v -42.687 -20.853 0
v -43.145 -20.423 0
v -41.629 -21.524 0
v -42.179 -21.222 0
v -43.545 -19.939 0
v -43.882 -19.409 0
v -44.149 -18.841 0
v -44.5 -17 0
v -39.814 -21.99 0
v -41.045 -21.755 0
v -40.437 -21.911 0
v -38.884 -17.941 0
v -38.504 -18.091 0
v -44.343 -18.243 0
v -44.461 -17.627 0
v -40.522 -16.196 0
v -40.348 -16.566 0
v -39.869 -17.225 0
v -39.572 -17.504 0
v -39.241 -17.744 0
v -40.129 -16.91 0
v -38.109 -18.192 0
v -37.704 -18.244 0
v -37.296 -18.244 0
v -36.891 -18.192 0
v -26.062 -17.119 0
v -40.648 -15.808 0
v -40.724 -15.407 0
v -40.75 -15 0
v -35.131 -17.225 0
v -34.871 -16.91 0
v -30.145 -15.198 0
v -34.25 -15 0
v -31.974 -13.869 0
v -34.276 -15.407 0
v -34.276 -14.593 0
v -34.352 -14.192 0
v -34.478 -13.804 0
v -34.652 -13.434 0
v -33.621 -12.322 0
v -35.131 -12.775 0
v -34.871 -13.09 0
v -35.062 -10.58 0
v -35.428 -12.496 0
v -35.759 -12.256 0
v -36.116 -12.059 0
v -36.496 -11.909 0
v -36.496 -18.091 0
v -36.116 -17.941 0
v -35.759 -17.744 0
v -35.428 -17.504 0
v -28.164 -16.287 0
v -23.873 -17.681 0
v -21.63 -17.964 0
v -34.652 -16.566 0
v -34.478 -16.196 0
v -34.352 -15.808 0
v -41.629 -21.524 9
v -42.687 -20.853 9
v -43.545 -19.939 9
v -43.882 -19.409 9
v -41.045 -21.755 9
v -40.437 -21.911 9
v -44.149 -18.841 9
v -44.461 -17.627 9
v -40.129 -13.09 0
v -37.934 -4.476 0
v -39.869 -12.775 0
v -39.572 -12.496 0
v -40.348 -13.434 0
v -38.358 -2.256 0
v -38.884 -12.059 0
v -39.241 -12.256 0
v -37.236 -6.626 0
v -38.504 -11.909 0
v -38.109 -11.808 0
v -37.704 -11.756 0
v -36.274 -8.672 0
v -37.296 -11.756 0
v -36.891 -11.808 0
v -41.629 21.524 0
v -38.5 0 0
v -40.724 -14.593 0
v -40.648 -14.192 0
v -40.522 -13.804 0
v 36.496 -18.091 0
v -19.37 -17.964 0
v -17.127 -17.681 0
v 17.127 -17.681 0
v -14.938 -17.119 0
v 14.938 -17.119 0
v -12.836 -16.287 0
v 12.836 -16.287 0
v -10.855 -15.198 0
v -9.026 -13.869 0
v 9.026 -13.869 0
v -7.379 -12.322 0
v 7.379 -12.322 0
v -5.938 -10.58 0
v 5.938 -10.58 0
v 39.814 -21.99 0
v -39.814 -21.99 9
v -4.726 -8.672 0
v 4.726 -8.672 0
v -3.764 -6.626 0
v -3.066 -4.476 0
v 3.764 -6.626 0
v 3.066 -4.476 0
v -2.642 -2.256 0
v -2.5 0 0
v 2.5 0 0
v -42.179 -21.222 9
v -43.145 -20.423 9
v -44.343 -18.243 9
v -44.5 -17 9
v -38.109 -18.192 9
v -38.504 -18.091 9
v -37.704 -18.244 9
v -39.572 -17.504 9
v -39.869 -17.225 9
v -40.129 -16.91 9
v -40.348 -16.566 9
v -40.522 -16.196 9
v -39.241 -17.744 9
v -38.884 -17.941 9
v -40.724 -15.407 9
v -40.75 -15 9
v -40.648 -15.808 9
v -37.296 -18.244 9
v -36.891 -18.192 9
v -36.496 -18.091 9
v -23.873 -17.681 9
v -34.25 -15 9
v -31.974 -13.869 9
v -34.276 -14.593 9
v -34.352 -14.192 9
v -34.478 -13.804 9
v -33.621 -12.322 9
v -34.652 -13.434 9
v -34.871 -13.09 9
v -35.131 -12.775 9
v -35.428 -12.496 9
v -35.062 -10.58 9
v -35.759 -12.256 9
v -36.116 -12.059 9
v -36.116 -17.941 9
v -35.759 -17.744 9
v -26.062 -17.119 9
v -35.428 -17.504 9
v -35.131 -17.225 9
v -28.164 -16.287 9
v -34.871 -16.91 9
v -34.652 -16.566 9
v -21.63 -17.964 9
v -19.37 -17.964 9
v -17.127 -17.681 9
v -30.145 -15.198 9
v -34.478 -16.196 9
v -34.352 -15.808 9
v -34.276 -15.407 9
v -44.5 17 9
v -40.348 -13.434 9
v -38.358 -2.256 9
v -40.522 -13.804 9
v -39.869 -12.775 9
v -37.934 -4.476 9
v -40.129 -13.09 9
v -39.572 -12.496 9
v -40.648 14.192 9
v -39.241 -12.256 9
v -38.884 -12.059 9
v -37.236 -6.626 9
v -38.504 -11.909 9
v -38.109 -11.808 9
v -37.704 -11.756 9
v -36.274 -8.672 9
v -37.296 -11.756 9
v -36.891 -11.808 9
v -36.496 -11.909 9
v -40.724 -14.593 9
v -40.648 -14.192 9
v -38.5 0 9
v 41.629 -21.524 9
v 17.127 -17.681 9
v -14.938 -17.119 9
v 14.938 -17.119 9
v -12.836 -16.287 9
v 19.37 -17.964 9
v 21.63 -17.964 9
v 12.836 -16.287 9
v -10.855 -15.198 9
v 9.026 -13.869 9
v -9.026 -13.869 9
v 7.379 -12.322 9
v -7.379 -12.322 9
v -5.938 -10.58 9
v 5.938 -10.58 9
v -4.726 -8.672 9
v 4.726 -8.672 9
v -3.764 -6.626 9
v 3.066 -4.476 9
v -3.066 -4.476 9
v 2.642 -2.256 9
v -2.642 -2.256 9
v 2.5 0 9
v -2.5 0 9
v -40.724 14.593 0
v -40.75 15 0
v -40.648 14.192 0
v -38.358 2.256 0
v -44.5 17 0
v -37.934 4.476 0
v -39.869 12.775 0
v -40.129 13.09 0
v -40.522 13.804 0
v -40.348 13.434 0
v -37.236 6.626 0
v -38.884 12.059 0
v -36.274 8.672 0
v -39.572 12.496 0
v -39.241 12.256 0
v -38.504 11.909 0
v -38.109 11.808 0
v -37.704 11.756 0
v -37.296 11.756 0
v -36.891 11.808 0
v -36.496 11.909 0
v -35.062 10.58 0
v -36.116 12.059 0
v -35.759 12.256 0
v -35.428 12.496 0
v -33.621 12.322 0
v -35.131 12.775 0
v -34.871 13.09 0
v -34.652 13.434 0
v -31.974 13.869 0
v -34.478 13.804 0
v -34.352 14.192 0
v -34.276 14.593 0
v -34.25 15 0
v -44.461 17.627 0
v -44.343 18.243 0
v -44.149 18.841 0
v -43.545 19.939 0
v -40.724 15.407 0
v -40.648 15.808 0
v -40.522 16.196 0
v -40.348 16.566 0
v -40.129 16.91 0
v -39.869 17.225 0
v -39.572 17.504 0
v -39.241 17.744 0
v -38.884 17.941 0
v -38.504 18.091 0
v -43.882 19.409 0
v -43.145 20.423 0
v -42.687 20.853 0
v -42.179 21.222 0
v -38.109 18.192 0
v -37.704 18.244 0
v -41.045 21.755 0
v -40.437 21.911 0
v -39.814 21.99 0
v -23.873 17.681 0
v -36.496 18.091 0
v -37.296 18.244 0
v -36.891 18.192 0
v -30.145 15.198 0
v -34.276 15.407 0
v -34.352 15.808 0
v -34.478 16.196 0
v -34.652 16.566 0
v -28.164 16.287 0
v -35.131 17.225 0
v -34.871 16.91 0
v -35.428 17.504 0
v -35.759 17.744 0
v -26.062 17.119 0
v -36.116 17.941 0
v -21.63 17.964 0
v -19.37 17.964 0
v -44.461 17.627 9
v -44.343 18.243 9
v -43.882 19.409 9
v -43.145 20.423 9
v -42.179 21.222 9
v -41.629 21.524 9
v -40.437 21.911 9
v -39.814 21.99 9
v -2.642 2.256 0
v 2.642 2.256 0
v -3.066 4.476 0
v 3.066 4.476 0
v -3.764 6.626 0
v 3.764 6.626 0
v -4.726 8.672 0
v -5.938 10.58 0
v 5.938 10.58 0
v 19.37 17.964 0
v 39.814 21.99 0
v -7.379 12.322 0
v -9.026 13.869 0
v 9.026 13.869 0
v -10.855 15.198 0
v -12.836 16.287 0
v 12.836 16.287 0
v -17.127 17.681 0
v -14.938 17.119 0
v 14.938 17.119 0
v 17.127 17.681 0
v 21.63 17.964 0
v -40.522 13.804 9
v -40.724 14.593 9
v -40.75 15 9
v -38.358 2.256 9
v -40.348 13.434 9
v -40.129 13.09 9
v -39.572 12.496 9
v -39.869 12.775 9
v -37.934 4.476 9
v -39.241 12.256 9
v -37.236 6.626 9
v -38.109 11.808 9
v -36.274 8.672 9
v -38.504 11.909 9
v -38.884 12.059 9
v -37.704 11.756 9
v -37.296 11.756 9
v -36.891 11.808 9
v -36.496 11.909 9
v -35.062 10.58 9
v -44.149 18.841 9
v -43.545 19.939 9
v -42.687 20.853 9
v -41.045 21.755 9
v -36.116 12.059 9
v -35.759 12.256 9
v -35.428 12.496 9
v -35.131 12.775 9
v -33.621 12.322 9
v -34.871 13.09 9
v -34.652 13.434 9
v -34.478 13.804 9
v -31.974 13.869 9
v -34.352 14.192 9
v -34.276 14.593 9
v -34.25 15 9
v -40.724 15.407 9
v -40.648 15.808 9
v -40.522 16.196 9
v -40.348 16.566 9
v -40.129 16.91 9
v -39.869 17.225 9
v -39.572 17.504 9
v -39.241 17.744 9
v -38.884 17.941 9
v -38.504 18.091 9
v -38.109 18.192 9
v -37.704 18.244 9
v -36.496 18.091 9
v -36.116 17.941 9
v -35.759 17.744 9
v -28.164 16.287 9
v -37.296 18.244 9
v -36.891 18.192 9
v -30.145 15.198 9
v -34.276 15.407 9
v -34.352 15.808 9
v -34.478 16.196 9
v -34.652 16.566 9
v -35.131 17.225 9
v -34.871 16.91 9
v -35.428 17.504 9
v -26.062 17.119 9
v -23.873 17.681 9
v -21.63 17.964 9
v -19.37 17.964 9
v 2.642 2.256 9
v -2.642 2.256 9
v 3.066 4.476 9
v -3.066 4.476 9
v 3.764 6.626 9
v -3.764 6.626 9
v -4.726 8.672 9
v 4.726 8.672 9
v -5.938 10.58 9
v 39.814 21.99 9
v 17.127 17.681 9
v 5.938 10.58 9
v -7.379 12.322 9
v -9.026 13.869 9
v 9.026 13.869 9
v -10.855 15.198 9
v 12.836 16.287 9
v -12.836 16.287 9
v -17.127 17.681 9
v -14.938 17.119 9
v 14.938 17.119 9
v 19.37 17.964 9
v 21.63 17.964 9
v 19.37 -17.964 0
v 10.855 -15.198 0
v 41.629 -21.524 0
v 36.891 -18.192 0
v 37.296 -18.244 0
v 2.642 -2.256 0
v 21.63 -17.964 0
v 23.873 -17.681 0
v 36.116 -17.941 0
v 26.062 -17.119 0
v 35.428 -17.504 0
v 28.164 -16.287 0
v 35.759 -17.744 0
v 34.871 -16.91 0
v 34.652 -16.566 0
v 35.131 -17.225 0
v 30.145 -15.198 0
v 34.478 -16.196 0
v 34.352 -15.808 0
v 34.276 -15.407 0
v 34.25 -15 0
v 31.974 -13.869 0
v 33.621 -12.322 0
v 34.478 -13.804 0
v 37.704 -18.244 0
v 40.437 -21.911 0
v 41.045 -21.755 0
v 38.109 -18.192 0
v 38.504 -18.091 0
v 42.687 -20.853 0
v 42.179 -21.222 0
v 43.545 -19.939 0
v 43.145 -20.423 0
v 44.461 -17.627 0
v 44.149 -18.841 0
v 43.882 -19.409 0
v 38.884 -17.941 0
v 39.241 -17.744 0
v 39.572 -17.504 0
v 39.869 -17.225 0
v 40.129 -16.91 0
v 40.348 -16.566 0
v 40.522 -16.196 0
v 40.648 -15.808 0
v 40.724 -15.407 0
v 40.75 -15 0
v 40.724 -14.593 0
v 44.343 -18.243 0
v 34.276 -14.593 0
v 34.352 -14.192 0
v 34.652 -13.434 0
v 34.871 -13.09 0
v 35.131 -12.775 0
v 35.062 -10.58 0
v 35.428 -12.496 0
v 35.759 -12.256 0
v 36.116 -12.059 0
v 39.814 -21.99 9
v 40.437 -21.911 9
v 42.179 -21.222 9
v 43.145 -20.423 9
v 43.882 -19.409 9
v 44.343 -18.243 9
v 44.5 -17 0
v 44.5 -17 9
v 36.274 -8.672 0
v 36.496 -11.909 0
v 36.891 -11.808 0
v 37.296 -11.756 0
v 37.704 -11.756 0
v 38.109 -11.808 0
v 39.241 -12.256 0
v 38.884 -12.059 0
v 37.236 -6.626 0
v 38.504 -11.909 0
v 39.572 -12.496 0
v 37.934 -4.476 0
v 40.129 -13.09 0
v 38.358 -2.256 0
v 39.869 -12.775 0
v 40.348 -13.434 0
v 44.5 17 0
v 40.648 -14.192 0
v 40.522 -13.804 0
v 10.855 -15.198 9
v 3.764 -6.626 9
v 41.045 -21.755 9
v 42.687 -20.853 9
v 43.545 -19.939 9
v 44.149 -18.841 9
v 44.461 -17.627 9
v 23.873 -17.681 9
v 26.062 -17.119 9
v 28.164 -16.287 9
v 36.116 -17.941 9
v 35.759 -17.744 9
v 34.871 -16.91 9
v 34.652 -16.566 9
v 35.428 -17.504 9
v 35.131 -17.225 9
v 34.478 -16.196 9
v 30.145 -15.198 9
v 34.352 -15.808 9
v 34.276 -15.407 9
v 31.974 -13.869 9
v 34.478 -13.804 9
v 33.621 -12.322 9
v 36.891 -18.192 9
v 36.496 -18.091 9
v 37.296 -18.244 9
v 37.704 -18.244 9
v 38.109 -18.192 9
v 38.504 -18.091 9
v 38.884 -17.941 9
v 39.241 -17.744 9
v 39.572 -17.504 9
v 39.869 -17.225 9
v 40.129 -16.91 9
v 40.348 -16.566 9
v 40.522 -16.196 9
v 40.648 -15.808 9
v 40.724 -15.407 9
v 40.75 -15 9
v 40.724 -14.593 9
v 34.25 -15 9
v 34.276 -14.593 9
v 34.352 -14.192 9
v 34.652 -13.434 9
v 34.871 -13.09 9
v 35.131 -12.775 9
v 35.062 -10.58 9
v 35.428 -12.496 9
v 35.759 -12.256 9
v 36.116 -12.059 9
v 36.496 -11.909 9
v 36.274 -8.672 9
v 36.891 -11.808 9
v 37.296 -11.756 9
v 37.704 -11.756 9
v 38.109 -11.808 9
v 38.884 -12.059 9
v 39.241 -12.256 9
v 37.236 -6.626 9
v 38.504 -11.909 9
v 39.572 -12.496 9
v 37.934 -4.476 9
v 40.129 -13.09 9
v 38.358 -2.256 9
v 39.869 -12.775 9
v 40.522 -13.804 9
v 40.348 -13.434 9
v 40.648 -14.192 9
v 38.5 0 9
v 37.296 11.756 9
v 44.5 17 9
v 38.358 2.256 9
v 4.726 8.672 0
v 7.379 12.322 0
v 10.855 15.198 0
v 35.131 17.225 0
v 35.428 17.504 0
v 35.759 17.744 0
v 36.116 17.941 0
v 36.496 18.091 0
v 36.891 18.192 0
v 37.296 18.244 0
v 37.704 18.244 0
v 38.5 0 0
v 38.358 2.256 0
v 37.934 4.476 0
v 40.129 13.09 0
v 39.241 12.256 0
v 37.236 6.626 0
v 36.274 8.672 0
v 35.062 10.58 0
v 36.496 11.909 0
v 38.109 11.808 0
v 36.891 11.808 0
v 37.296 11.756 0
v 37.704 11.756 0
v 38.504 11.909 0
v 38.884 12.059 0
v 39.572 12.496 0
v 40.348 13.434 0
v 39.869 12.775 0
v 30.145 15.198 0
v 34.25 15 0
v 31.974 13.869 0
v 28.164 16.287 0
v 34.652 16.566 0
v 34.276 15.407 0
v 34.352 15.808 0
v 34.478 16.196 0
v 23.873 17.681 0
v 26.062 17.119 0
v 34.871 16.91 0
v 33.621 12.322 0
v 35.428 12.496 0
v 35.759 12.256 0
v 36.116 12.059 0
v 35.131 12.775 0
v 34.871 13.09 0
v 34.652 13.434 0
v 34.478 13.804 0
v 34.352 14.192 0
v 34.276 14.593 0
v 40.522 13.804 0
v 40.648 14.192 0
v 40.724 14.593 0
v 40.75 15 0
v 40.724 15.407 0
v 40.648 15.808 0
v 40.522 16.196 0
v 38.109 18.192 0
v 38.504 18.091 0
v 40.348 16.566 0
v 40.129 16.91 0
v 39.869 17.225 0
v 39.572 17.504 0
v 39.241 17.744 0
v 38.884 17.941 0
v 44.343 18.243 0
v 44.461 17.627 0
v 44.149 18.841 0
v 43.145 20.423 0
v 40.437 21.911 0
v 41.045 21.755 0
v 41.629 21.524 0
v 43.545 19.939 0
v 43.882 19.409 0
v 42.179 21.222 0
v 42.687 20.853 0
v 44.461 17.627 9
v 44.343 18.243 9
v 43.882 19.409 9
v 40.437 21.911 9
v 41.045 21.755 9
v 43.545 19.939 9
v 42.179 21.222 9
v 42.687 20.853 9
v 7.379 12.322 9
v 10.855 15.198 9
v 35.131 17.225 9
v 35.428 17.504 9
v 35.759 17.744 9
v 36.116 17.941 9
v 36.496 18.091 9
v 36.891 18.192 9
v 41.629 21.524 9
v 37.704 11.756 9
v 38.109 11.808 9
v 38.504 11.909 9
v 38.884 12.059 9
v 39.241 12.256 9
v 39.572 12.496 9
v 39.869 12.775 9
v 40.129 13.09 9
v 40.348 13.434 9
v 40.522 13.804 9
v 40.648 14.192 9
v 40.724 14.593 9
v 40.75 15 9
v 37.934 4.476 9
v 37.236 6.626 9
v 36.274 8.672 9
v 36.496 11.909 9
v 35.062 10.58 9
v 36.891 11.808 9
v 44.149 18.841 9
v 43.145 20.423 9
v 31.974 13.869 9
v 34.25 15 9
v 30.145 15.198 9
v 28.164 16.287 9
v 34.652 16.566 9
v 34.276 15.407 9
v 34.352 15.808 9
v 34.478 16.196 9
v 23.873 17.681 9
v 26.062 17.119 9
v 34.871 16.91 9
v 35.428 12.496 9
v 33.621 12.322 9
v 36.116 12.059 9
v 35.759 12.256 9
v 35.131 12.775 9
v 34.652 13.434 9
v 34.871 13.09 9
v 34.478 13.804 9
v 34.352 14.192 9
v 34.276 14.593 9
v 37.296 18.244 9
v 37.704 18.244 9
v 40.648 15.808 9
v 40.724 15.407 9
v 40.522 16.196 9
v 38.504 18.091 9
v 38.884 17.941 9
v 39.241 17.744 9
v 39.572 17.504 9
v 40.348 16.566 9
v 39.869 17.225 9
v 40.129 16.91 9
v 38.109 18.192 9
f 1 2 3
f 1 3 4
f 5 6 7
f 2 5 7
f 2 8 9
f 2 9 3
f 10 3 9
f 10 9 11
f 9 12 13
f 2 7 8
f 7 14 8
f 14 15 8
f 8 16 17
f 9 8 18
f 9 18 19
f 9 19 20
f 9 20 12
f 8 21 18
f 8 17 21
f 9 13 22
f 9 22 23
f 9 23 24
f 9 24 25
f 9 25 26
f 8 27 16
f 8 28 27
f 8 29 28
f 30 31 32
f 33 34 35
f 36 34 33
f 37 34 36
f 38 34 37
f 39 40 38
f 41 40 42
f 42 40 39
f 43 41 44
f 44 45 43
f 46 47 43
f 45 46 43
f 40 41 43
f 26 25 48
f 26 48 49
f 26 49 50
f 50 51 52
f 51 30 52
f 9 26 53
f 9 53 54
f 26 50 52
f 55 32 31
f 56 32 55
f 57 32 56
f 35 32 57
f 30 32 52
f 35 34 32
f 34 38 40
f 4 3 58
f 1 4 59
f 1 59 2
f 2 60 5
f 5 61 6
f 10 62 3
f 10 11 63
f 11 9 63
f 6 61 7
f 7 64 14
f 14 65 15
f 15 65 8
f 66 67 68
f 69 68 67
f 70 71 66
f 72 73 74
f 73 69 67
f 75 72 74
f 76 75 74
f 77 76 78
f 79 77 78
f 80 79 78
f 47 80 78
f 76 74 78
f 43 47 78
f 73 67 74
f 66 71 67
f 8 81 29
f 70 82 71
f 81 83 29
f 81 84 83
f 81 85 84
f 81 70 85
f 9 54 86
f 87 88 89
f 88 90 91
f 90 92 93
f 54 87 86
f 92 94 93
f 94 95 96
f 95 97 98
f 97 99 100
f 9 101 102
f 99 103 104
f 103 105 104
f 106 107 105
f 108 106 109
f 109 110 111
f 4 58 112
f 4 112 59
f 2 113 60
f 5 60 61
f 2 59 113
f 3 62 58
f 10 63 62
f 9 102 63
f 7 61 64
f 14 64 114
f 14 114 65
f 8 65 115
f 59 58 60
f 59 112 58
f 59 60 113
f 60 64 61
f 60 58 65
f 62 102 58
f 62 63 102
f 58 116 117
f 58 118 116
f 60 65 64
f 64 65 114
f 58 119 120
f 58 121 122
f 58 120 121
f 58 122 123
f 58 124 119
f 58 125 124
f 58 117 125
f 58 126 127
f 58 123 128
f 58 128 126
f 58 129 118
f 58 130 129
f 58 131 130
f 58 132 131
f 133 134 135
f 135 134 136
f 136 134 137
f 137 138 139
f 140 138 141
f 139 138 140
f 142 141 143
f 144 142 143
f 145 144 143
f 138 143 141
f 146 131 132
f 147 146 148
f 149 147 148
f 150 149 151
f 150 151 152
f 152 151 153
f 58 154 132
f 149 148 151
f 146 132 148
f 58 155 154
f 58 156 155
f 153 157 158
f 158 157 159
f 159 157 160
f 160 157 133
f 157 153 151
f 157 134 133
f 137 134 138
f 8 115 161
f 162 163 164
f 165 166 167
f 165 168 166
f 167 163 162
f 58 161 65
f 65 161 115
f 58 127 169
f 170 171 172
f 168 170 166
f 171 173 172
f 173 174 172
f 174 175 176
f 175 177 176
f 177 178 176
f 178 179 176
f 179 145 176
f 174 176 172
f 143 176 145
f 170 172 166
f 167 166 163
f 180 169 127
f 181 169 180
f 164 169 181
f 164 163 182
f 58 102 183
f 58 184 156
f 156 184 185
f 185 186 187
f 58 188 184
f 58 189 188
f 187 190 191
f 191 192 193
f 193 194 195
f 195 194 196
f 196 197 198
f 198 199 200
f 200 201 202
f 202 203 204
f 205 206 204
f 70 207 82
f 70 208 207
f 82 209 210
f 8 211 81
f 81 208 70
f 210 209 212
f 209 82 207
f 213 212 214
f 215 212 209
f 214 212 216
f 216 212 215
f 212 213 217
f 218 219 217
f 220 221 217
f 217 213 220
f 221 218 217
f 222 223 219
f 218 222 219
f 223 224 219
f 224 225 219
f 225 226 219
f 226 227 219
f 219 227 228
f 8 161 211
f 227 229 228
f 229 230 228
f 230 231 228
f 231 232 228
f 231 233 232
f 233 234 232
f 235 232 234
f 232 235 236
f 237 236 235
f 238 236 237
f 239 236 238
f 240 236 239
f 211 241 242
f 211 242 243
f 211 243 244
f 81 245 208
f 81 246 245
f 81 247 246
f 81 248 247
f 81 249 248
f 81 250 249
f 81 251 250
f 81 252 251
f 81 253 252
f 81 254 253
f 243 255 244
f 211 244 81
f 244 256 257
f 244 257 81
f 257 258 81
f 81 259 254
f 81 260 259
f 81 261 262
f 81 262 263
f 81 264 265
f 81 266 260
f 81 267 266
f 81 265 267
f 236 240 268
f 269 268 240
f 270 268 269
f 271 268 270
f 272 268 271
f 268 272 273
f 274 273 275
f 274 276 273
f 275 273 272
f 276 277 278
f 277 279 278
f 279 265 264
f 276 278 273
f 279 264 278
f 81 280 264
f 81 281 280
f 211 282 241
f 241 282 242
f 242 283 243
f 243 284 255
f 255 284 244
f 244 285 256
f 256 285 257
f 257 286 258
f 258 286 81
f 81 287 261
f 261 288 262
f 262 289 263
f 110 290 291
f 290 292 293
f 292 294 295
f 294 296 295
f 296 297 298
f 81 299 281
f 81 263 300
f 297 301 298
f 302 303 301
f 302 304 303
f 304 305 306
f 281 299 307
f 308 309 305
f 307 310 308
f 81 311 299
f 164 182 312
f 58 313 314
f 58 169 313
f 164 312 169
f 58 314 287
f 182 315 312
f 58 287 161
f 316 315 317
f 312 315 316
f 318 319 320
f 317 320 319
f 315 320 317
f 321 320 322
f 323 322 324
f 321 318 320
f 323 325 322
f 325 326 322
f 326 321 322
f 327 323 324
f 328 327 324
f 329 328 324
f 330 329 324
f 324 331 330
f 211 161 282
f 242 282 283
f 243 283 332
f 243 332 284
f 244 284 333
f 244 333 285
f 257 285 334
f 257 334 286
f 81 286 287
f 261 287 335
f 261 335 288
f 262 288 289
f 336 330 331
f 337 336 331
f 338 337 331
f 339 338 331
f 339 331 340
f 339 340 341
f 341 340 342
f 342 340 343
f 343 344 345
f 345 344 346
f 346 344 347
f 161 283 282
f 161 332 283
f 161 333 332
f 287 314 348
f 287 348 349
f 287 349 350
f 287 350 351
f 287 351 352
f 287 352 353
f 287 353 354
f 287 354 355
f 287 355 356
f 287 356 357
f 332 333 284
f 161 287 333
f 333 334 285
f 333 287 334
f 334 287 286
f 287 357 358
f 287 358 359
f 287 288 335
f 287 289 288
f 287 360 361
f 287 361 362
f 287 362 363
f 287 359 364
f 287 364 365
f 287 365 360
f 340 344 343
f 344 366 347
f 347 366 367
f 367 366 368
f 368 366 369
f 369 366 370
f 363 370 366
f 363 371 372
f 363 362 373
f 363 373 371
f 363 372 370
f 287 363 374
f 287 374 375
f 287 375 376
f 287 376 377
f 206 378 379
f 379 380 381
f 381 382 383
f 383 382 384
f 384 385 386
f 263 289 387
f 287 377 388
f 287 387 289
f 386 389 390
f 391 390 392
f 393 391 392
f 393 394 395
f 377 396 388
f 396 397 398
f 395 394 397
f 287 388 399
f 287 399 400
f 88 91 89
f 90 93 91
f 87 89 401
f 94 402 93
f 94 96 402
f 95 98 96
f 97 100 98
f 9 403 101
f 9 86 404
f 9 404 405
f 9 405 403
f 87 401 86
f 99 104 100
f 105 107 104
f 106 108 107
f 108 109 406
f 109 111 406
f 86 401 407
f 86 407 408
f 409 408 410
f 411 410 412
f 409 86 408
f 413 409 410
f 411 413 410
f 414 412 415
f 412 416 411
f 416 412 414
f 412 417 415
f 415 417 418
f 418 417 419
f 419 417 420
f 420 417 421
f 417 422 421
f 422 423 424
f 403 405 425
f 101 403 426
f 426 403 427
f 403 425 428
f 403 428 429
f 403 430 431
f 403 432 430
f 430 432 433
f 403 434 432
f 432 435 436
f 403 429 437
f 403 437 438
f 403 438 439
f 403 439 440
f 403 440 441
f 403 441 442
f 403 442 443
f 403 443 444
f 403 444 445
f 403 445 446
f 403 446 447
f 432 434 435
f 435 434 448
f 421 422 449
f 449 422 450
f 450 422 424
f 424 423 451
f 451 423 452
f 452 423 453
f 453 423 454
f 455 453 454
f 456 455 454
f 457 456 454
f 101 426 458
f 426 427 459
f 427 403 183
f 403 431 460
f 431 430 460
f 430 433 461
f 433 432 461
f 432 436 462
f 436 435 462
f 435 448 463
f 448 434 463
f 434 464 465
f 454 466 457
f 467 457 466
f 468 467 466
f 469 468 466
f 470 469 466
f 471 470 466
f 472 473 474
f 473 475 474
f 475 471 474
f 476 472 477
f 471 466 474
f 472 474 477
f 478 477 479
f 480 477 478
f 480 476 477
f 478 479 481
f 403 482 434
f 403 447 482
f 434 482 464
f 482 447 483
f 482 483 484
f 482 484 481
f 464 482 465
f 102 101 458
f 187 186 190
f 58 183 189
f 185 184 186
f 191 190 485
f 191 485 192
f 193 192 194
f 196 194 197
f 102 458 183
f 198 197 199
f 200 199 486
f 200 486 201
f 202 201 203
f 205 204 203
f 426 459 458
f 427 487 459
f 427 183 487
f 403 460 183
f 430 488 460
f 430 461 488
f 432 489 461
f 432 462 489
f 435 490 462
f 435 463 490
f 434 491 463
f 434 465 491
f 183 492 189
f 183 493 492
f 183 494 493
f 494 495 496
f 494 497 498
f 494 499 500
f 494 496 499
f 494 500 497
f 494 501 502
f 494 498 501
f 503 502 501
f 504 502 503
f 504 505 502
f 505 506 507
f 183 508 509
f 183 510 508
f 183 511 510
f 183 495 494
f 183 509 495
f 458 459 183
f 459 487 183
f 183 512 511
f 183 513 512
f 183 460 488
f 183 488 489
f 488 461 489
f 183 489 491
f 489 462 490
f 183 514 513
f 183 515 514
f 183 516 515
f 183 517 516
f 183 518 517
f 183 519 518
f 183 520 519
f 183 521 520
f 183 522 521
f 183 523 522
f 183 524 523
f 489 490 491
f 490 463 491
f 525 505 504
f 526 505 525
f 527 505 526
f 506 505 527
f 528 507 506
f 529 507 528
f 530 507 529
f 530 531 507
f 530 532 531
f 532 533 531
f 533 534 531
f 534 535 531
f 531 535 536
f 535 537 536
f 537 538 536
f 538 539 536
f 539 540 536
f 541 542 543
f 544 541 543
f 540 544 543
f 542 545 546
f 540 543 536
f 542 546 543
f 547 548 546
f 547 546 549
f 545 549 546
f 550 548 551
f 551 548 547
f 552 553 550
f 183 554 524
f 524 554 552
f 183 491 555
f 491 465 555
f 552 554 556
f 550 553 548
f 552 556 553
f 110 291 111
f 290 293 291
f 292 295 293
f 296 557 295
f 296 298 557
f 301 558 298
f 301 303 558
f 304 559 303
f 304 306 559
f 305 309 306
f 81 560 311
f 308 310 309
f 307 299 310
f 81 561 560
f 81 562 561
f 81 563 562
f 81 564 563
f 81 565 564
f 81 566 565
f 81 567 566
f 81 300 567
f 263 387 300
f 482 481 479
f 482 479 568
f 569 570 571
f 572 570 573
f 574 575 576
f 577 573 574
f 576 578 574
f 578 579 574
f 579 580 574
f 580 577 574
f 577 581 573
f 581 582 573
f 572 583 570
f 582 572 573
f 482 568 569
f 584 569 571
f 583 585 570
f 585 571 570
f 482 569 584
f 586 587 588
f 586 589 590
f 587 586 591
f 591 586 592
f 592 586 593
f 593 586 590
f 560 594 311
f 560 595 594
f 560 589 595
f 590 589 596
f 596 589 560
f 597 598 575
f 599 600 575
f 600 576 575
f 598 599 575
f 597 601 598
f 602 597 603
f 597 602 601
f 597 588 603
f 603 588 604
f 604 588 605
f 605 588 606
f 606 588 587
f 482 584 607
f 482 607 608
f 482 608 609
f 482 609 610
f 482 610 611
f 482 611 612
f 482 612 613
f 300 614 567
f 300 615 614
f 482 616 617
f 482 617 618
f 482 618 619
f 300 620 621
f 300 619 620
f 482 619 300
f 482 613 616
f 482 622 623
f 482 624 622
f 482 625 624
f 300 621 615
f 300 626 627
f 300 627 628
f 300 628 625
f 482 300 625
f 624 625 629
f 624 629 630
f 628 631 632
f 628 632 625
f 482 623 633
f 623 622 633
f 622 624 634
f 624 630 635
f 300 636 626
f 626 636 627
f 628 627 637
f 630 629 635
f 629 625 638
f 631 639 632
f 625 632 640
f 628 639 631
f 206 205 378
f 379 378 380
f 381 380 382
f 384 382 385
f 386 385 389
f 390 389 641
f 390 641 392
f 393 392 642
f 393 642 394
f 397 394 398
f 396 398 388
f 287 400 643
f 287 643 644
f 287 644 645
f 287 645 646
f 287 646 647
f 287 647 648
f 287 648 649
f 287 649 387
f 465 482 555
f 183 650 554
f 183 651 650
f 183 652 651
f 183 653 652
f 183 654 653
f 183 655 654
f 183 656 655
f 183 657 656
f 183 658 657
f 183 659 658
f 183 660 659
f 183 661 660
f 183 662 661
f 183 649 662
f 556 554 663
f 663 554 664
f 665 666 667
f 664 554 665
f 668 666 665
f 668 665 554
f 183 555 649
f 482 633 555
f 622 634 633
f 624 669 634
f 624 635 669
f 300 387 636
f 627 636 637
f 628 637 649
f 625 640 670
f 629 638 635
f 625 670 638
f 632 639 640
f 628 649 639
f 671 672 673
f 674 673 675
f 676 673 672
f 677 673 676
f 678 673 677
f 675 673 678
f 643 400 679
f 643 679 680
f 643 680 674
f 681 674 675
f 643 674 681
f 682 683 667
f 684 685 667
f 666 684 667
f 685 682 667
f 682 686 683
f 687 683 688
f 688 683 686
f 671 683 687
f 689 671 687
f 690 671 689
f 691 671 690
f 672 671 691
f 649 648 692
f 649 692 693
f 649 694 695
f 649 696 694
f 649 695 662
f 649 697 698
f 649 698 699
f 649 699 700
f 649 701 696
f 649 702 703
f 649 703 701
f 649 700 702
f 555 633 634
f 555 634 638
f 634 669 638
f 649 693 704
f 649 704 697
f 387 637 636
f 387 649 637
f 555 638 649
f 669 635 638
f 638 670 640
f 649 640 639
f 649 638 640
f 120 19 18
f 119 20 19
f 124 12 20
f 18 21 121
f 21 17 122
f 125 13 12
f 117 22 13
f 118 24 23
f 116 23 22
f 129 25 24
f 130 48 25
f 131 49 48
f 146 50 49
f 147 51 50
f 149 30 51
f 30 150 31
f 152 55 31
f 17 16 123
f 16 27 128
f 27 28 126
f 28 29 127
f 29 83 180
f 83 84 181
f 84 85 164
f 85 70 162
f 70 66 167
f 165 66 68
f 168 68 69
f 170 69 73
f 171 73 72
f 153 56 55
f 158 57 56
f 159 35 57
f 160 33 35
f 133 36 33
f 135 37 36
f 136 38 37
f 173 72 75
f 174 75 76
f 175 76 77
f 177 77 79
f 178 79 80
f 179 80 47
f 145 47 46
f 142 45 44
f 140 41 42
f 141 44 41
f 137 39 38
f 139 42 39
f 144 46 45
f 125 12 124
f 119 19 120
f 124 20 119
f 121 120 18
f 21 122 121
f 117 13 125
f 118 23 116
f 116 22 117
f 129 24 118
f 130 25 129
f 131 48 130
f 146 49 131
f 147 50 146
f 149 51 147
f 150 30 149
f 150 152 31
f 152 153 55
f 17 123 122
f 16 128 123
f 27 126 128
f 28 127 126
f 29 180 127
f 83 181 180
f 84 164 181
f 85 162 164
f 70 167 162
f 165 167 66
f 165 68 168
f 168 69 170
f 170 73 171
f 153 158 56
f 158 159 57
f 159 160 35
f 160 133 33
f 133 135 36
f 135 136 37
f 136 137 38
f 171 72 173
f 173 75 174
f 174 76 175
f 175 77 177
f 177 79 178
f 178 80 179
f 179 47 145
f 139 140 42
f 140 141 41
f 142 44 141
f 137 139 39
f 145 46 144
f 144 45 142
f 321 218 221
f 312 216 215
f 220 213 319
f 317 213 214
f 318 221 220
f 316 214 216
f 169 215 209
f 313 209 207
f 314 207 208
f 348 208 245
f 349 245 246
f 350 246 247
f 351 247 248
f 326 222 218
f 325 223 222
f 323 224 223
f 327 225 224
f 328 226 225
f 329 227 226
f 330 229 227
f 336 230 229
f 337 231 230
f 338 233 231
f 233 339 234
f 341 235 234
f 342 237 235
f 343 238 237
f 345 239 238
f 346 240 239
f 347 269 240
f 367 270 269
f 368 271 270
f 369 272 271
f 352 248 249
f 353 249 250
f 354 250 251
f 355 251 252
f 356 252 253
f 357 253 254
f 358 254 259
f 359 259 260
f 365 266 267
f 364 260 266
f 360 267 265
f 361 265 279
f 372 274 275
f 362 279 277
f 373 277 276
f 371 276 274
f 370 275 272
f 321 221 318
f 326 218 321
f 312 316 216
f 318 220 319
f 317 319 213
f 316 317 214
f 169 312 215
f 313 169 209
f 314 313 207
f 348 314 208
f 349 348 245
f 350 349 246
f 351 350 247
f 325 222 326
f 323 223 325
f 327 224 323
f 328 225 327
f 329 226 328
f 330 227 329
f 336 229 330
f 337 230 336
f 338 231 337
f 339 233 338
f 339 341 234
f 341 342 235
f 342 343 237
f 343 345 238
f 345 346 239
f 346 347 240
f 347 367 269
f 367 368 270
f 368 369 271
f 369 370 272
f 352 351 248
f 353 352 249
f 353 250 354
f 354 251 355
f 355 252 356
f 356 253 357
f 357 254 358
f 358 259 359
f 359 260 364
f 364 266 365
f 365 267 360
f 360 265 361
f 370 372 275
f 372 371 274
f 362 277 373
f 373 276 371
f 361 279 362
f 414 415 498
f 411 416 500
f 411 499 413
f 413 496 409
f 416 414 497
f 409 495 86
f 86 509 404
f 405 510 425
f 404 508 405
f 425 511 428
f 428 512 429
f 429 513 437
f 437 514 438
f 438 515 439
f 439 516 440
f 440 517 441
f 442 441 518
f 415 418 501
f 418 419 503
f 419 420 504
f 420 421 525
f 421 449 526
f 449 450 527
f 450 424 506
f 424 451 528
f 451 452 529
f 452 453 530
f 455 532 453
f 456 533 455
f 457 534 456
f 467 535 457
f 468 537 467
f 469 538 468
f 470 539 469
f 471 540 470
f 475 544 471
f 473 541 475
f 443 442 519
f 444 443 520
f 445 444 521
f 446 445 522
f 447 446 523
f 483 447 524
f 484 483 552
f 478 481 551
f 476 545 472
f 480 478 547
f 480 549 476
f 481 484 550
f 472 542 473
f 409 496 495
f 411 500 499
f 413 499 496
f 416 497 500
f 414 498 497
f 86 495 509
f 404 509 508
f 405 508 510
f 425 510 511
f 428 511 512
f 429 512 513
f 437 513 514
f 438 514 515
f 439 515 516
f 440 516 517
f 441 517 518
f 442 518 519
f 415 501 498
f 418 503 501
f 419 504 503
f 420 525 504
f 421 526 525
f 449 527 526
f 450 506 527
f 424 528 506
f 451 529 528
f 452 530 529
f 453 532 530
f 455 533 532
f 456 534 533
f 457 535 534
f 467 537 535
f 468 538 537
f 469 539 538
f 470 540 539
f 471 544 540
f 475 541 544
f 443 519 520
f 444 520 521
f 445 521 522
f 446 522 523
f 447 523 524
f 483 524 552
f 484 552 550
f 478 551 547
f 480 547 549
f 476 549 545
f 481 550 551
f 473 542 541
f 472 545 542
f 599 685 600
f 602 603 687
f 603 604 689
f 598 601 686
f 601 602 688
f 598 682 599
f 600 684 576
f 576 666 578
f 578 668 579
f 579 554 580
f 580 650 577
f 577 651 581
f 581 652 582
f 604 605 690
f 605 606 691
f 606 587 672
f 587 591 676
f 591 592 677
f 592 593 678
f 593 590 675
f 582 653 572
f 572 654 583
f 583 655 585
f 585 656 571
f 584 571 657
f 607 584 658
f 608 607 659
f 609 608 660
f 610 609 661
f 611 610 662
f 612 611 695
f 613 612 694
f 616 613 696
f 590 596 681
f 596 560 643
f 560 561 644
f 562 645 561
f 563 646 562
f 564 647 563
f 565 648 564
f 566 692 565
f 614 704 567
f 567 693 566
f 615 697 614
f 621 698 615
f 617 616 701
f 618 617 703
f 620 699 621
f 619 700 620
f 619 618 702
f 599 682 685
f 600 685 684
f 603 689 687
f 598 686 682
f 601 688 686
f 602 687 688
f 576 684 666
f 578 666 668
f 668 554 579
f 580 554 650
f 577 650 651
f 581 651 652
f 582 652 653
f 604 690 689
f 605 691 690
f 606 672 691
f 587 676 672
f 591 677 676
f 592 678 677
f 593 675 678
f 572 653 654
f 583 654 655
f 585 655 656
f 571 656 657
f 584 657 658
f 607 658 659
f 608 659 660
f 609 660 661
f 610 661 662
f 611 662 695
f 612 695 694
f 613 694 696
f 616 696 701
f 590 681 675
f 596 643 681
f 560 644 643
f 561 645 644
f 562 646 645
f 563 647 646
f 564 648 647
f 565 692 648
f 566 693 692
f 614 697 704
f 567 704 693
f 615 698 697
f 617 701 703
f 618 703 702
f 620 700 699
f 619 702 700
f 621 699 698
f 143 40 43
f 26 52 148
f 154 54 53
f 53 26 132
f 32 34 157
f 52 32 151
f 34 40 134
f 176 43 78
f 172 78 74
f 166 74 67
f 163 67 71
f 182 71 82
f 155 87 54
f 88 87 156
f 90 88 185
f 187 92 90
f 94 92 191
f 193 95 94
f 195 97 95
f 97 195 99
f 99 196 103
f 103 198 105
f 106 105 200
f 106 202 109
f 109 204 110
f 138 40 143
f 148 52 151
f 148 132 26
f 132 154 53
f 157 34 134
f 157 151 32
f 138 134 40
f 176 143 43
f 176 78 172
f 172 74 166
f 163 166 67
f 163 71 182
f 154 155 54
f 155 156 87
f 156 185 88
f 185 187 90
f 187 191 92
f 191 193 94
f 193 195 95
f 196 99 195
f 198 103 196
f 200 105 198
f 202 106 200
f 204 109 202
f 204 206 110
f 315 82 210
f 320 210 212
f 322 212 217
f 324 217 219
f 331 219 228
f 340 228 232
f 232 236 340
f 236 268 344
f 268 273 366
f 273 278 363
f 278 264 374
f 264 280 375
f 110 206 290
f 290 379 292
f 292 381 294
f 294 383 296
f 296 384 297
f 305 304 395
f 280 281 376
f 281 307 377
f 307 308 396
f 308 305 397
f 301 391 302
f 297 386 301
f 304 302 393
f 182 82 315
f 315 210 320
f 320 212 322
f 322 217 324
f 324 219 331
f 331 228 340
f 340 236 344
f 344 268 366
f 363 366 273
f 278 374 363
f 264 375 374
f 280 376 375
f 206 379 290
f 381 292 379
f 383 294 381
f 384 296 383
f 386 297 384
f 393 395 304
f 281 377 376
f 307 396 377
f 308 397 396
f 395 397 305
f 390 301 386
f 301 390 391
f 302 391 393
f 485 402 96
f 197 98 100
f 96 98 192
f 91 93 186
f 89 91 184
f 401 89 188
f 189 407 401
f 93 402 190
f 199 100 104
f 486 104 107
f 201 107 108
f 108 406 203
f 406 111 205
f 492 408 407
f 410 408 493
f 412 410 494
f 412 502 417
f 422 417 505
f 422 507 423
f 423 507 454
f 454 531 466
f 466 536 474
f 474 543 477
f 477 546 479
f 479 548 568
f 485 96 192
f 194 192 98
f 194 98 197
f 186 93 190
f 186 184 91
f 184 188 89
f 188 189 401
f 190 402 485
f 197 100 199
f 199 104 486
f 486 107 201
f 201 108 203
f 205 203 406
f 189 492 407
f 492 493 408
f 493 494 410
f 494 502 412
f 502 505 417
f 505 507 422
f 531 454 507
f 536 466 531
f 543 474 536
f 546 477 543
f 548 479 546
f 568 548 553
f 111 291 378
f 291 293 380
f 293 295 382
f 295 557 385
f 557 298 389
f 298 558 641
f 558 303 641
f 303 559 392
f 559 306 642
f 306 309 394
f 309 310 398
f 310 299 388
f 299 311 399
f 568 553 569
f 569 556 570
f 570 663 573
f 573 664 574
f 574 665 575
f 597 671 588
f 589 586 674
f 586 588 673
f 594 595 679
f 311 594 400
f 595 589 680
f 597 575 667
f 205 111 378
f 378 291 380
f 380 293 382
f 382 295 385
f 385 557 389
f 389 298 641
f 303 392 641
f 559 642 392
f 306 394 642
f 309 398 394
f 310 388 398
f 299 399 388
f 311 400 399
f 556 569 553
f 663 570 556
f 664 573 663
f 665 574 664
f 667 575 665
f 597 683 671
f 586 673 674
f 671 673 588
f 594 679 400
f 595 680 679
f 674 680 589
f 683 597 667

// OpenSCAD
$fn = 50;

difference() {
	union() {
		hull() {
			translate(v = [-39.5, 17.0, 0]) {
				cylinder(h = 9, r = 5);
			}
			translate(v = [39.5, 17.0, 0]) {
				cylinder(h = 9, r = 5);
			}
			translate(v = [-39.5, -17.0, 0]) {
				cylinder(h = 9, r = 5);
			}
			translate(v = [39.5, -17.0, 0]) {
				cylinder(h = 9, r = 5);
			}
		}
	}
	union() {
		translate(v = [-37.5, -15.0, -100.0]) {
			cylinder(h = 200, r = 3.25);
		}
		translate(v = [-37.5, 15.0, -100.0]) {
			cylinder(h = 200, r = 3.25);
		}
		translate(v = [37.5, -15.0, -100.0]) {
			cylinder(h = 200, r = 3.25);
		}
		translate(v = [37.5, 15.0, -100.0]) {
			cylinder(h = 200, r = 3.25);
		}
		translate(v = [-37.5, -15.0, -100.0]) {
			cylinder(h = 200, r = 1.8);
		}
		translate(v = [-37.5, 15.0, -100.0]) {
			cylinder(h = 200, r = 1.8);
		}
		translate(v = [37.5, -15.0, -100.0]) {
			cylinder(h = 200, r = 1.8);
		}
		translate(v = [37.5, 15.0, -100.0]) {
			cylinder(h = 200, r = 1.8);
		}
		translate(v = [-20.5, 0, 0.0]) {
			cylinder(h = 9, r = 18.0);
		}
		translate(v = [20.5, 0, 0.0]) {
			cylinder(h = 9, r = 18.0);
		}
	}
}
